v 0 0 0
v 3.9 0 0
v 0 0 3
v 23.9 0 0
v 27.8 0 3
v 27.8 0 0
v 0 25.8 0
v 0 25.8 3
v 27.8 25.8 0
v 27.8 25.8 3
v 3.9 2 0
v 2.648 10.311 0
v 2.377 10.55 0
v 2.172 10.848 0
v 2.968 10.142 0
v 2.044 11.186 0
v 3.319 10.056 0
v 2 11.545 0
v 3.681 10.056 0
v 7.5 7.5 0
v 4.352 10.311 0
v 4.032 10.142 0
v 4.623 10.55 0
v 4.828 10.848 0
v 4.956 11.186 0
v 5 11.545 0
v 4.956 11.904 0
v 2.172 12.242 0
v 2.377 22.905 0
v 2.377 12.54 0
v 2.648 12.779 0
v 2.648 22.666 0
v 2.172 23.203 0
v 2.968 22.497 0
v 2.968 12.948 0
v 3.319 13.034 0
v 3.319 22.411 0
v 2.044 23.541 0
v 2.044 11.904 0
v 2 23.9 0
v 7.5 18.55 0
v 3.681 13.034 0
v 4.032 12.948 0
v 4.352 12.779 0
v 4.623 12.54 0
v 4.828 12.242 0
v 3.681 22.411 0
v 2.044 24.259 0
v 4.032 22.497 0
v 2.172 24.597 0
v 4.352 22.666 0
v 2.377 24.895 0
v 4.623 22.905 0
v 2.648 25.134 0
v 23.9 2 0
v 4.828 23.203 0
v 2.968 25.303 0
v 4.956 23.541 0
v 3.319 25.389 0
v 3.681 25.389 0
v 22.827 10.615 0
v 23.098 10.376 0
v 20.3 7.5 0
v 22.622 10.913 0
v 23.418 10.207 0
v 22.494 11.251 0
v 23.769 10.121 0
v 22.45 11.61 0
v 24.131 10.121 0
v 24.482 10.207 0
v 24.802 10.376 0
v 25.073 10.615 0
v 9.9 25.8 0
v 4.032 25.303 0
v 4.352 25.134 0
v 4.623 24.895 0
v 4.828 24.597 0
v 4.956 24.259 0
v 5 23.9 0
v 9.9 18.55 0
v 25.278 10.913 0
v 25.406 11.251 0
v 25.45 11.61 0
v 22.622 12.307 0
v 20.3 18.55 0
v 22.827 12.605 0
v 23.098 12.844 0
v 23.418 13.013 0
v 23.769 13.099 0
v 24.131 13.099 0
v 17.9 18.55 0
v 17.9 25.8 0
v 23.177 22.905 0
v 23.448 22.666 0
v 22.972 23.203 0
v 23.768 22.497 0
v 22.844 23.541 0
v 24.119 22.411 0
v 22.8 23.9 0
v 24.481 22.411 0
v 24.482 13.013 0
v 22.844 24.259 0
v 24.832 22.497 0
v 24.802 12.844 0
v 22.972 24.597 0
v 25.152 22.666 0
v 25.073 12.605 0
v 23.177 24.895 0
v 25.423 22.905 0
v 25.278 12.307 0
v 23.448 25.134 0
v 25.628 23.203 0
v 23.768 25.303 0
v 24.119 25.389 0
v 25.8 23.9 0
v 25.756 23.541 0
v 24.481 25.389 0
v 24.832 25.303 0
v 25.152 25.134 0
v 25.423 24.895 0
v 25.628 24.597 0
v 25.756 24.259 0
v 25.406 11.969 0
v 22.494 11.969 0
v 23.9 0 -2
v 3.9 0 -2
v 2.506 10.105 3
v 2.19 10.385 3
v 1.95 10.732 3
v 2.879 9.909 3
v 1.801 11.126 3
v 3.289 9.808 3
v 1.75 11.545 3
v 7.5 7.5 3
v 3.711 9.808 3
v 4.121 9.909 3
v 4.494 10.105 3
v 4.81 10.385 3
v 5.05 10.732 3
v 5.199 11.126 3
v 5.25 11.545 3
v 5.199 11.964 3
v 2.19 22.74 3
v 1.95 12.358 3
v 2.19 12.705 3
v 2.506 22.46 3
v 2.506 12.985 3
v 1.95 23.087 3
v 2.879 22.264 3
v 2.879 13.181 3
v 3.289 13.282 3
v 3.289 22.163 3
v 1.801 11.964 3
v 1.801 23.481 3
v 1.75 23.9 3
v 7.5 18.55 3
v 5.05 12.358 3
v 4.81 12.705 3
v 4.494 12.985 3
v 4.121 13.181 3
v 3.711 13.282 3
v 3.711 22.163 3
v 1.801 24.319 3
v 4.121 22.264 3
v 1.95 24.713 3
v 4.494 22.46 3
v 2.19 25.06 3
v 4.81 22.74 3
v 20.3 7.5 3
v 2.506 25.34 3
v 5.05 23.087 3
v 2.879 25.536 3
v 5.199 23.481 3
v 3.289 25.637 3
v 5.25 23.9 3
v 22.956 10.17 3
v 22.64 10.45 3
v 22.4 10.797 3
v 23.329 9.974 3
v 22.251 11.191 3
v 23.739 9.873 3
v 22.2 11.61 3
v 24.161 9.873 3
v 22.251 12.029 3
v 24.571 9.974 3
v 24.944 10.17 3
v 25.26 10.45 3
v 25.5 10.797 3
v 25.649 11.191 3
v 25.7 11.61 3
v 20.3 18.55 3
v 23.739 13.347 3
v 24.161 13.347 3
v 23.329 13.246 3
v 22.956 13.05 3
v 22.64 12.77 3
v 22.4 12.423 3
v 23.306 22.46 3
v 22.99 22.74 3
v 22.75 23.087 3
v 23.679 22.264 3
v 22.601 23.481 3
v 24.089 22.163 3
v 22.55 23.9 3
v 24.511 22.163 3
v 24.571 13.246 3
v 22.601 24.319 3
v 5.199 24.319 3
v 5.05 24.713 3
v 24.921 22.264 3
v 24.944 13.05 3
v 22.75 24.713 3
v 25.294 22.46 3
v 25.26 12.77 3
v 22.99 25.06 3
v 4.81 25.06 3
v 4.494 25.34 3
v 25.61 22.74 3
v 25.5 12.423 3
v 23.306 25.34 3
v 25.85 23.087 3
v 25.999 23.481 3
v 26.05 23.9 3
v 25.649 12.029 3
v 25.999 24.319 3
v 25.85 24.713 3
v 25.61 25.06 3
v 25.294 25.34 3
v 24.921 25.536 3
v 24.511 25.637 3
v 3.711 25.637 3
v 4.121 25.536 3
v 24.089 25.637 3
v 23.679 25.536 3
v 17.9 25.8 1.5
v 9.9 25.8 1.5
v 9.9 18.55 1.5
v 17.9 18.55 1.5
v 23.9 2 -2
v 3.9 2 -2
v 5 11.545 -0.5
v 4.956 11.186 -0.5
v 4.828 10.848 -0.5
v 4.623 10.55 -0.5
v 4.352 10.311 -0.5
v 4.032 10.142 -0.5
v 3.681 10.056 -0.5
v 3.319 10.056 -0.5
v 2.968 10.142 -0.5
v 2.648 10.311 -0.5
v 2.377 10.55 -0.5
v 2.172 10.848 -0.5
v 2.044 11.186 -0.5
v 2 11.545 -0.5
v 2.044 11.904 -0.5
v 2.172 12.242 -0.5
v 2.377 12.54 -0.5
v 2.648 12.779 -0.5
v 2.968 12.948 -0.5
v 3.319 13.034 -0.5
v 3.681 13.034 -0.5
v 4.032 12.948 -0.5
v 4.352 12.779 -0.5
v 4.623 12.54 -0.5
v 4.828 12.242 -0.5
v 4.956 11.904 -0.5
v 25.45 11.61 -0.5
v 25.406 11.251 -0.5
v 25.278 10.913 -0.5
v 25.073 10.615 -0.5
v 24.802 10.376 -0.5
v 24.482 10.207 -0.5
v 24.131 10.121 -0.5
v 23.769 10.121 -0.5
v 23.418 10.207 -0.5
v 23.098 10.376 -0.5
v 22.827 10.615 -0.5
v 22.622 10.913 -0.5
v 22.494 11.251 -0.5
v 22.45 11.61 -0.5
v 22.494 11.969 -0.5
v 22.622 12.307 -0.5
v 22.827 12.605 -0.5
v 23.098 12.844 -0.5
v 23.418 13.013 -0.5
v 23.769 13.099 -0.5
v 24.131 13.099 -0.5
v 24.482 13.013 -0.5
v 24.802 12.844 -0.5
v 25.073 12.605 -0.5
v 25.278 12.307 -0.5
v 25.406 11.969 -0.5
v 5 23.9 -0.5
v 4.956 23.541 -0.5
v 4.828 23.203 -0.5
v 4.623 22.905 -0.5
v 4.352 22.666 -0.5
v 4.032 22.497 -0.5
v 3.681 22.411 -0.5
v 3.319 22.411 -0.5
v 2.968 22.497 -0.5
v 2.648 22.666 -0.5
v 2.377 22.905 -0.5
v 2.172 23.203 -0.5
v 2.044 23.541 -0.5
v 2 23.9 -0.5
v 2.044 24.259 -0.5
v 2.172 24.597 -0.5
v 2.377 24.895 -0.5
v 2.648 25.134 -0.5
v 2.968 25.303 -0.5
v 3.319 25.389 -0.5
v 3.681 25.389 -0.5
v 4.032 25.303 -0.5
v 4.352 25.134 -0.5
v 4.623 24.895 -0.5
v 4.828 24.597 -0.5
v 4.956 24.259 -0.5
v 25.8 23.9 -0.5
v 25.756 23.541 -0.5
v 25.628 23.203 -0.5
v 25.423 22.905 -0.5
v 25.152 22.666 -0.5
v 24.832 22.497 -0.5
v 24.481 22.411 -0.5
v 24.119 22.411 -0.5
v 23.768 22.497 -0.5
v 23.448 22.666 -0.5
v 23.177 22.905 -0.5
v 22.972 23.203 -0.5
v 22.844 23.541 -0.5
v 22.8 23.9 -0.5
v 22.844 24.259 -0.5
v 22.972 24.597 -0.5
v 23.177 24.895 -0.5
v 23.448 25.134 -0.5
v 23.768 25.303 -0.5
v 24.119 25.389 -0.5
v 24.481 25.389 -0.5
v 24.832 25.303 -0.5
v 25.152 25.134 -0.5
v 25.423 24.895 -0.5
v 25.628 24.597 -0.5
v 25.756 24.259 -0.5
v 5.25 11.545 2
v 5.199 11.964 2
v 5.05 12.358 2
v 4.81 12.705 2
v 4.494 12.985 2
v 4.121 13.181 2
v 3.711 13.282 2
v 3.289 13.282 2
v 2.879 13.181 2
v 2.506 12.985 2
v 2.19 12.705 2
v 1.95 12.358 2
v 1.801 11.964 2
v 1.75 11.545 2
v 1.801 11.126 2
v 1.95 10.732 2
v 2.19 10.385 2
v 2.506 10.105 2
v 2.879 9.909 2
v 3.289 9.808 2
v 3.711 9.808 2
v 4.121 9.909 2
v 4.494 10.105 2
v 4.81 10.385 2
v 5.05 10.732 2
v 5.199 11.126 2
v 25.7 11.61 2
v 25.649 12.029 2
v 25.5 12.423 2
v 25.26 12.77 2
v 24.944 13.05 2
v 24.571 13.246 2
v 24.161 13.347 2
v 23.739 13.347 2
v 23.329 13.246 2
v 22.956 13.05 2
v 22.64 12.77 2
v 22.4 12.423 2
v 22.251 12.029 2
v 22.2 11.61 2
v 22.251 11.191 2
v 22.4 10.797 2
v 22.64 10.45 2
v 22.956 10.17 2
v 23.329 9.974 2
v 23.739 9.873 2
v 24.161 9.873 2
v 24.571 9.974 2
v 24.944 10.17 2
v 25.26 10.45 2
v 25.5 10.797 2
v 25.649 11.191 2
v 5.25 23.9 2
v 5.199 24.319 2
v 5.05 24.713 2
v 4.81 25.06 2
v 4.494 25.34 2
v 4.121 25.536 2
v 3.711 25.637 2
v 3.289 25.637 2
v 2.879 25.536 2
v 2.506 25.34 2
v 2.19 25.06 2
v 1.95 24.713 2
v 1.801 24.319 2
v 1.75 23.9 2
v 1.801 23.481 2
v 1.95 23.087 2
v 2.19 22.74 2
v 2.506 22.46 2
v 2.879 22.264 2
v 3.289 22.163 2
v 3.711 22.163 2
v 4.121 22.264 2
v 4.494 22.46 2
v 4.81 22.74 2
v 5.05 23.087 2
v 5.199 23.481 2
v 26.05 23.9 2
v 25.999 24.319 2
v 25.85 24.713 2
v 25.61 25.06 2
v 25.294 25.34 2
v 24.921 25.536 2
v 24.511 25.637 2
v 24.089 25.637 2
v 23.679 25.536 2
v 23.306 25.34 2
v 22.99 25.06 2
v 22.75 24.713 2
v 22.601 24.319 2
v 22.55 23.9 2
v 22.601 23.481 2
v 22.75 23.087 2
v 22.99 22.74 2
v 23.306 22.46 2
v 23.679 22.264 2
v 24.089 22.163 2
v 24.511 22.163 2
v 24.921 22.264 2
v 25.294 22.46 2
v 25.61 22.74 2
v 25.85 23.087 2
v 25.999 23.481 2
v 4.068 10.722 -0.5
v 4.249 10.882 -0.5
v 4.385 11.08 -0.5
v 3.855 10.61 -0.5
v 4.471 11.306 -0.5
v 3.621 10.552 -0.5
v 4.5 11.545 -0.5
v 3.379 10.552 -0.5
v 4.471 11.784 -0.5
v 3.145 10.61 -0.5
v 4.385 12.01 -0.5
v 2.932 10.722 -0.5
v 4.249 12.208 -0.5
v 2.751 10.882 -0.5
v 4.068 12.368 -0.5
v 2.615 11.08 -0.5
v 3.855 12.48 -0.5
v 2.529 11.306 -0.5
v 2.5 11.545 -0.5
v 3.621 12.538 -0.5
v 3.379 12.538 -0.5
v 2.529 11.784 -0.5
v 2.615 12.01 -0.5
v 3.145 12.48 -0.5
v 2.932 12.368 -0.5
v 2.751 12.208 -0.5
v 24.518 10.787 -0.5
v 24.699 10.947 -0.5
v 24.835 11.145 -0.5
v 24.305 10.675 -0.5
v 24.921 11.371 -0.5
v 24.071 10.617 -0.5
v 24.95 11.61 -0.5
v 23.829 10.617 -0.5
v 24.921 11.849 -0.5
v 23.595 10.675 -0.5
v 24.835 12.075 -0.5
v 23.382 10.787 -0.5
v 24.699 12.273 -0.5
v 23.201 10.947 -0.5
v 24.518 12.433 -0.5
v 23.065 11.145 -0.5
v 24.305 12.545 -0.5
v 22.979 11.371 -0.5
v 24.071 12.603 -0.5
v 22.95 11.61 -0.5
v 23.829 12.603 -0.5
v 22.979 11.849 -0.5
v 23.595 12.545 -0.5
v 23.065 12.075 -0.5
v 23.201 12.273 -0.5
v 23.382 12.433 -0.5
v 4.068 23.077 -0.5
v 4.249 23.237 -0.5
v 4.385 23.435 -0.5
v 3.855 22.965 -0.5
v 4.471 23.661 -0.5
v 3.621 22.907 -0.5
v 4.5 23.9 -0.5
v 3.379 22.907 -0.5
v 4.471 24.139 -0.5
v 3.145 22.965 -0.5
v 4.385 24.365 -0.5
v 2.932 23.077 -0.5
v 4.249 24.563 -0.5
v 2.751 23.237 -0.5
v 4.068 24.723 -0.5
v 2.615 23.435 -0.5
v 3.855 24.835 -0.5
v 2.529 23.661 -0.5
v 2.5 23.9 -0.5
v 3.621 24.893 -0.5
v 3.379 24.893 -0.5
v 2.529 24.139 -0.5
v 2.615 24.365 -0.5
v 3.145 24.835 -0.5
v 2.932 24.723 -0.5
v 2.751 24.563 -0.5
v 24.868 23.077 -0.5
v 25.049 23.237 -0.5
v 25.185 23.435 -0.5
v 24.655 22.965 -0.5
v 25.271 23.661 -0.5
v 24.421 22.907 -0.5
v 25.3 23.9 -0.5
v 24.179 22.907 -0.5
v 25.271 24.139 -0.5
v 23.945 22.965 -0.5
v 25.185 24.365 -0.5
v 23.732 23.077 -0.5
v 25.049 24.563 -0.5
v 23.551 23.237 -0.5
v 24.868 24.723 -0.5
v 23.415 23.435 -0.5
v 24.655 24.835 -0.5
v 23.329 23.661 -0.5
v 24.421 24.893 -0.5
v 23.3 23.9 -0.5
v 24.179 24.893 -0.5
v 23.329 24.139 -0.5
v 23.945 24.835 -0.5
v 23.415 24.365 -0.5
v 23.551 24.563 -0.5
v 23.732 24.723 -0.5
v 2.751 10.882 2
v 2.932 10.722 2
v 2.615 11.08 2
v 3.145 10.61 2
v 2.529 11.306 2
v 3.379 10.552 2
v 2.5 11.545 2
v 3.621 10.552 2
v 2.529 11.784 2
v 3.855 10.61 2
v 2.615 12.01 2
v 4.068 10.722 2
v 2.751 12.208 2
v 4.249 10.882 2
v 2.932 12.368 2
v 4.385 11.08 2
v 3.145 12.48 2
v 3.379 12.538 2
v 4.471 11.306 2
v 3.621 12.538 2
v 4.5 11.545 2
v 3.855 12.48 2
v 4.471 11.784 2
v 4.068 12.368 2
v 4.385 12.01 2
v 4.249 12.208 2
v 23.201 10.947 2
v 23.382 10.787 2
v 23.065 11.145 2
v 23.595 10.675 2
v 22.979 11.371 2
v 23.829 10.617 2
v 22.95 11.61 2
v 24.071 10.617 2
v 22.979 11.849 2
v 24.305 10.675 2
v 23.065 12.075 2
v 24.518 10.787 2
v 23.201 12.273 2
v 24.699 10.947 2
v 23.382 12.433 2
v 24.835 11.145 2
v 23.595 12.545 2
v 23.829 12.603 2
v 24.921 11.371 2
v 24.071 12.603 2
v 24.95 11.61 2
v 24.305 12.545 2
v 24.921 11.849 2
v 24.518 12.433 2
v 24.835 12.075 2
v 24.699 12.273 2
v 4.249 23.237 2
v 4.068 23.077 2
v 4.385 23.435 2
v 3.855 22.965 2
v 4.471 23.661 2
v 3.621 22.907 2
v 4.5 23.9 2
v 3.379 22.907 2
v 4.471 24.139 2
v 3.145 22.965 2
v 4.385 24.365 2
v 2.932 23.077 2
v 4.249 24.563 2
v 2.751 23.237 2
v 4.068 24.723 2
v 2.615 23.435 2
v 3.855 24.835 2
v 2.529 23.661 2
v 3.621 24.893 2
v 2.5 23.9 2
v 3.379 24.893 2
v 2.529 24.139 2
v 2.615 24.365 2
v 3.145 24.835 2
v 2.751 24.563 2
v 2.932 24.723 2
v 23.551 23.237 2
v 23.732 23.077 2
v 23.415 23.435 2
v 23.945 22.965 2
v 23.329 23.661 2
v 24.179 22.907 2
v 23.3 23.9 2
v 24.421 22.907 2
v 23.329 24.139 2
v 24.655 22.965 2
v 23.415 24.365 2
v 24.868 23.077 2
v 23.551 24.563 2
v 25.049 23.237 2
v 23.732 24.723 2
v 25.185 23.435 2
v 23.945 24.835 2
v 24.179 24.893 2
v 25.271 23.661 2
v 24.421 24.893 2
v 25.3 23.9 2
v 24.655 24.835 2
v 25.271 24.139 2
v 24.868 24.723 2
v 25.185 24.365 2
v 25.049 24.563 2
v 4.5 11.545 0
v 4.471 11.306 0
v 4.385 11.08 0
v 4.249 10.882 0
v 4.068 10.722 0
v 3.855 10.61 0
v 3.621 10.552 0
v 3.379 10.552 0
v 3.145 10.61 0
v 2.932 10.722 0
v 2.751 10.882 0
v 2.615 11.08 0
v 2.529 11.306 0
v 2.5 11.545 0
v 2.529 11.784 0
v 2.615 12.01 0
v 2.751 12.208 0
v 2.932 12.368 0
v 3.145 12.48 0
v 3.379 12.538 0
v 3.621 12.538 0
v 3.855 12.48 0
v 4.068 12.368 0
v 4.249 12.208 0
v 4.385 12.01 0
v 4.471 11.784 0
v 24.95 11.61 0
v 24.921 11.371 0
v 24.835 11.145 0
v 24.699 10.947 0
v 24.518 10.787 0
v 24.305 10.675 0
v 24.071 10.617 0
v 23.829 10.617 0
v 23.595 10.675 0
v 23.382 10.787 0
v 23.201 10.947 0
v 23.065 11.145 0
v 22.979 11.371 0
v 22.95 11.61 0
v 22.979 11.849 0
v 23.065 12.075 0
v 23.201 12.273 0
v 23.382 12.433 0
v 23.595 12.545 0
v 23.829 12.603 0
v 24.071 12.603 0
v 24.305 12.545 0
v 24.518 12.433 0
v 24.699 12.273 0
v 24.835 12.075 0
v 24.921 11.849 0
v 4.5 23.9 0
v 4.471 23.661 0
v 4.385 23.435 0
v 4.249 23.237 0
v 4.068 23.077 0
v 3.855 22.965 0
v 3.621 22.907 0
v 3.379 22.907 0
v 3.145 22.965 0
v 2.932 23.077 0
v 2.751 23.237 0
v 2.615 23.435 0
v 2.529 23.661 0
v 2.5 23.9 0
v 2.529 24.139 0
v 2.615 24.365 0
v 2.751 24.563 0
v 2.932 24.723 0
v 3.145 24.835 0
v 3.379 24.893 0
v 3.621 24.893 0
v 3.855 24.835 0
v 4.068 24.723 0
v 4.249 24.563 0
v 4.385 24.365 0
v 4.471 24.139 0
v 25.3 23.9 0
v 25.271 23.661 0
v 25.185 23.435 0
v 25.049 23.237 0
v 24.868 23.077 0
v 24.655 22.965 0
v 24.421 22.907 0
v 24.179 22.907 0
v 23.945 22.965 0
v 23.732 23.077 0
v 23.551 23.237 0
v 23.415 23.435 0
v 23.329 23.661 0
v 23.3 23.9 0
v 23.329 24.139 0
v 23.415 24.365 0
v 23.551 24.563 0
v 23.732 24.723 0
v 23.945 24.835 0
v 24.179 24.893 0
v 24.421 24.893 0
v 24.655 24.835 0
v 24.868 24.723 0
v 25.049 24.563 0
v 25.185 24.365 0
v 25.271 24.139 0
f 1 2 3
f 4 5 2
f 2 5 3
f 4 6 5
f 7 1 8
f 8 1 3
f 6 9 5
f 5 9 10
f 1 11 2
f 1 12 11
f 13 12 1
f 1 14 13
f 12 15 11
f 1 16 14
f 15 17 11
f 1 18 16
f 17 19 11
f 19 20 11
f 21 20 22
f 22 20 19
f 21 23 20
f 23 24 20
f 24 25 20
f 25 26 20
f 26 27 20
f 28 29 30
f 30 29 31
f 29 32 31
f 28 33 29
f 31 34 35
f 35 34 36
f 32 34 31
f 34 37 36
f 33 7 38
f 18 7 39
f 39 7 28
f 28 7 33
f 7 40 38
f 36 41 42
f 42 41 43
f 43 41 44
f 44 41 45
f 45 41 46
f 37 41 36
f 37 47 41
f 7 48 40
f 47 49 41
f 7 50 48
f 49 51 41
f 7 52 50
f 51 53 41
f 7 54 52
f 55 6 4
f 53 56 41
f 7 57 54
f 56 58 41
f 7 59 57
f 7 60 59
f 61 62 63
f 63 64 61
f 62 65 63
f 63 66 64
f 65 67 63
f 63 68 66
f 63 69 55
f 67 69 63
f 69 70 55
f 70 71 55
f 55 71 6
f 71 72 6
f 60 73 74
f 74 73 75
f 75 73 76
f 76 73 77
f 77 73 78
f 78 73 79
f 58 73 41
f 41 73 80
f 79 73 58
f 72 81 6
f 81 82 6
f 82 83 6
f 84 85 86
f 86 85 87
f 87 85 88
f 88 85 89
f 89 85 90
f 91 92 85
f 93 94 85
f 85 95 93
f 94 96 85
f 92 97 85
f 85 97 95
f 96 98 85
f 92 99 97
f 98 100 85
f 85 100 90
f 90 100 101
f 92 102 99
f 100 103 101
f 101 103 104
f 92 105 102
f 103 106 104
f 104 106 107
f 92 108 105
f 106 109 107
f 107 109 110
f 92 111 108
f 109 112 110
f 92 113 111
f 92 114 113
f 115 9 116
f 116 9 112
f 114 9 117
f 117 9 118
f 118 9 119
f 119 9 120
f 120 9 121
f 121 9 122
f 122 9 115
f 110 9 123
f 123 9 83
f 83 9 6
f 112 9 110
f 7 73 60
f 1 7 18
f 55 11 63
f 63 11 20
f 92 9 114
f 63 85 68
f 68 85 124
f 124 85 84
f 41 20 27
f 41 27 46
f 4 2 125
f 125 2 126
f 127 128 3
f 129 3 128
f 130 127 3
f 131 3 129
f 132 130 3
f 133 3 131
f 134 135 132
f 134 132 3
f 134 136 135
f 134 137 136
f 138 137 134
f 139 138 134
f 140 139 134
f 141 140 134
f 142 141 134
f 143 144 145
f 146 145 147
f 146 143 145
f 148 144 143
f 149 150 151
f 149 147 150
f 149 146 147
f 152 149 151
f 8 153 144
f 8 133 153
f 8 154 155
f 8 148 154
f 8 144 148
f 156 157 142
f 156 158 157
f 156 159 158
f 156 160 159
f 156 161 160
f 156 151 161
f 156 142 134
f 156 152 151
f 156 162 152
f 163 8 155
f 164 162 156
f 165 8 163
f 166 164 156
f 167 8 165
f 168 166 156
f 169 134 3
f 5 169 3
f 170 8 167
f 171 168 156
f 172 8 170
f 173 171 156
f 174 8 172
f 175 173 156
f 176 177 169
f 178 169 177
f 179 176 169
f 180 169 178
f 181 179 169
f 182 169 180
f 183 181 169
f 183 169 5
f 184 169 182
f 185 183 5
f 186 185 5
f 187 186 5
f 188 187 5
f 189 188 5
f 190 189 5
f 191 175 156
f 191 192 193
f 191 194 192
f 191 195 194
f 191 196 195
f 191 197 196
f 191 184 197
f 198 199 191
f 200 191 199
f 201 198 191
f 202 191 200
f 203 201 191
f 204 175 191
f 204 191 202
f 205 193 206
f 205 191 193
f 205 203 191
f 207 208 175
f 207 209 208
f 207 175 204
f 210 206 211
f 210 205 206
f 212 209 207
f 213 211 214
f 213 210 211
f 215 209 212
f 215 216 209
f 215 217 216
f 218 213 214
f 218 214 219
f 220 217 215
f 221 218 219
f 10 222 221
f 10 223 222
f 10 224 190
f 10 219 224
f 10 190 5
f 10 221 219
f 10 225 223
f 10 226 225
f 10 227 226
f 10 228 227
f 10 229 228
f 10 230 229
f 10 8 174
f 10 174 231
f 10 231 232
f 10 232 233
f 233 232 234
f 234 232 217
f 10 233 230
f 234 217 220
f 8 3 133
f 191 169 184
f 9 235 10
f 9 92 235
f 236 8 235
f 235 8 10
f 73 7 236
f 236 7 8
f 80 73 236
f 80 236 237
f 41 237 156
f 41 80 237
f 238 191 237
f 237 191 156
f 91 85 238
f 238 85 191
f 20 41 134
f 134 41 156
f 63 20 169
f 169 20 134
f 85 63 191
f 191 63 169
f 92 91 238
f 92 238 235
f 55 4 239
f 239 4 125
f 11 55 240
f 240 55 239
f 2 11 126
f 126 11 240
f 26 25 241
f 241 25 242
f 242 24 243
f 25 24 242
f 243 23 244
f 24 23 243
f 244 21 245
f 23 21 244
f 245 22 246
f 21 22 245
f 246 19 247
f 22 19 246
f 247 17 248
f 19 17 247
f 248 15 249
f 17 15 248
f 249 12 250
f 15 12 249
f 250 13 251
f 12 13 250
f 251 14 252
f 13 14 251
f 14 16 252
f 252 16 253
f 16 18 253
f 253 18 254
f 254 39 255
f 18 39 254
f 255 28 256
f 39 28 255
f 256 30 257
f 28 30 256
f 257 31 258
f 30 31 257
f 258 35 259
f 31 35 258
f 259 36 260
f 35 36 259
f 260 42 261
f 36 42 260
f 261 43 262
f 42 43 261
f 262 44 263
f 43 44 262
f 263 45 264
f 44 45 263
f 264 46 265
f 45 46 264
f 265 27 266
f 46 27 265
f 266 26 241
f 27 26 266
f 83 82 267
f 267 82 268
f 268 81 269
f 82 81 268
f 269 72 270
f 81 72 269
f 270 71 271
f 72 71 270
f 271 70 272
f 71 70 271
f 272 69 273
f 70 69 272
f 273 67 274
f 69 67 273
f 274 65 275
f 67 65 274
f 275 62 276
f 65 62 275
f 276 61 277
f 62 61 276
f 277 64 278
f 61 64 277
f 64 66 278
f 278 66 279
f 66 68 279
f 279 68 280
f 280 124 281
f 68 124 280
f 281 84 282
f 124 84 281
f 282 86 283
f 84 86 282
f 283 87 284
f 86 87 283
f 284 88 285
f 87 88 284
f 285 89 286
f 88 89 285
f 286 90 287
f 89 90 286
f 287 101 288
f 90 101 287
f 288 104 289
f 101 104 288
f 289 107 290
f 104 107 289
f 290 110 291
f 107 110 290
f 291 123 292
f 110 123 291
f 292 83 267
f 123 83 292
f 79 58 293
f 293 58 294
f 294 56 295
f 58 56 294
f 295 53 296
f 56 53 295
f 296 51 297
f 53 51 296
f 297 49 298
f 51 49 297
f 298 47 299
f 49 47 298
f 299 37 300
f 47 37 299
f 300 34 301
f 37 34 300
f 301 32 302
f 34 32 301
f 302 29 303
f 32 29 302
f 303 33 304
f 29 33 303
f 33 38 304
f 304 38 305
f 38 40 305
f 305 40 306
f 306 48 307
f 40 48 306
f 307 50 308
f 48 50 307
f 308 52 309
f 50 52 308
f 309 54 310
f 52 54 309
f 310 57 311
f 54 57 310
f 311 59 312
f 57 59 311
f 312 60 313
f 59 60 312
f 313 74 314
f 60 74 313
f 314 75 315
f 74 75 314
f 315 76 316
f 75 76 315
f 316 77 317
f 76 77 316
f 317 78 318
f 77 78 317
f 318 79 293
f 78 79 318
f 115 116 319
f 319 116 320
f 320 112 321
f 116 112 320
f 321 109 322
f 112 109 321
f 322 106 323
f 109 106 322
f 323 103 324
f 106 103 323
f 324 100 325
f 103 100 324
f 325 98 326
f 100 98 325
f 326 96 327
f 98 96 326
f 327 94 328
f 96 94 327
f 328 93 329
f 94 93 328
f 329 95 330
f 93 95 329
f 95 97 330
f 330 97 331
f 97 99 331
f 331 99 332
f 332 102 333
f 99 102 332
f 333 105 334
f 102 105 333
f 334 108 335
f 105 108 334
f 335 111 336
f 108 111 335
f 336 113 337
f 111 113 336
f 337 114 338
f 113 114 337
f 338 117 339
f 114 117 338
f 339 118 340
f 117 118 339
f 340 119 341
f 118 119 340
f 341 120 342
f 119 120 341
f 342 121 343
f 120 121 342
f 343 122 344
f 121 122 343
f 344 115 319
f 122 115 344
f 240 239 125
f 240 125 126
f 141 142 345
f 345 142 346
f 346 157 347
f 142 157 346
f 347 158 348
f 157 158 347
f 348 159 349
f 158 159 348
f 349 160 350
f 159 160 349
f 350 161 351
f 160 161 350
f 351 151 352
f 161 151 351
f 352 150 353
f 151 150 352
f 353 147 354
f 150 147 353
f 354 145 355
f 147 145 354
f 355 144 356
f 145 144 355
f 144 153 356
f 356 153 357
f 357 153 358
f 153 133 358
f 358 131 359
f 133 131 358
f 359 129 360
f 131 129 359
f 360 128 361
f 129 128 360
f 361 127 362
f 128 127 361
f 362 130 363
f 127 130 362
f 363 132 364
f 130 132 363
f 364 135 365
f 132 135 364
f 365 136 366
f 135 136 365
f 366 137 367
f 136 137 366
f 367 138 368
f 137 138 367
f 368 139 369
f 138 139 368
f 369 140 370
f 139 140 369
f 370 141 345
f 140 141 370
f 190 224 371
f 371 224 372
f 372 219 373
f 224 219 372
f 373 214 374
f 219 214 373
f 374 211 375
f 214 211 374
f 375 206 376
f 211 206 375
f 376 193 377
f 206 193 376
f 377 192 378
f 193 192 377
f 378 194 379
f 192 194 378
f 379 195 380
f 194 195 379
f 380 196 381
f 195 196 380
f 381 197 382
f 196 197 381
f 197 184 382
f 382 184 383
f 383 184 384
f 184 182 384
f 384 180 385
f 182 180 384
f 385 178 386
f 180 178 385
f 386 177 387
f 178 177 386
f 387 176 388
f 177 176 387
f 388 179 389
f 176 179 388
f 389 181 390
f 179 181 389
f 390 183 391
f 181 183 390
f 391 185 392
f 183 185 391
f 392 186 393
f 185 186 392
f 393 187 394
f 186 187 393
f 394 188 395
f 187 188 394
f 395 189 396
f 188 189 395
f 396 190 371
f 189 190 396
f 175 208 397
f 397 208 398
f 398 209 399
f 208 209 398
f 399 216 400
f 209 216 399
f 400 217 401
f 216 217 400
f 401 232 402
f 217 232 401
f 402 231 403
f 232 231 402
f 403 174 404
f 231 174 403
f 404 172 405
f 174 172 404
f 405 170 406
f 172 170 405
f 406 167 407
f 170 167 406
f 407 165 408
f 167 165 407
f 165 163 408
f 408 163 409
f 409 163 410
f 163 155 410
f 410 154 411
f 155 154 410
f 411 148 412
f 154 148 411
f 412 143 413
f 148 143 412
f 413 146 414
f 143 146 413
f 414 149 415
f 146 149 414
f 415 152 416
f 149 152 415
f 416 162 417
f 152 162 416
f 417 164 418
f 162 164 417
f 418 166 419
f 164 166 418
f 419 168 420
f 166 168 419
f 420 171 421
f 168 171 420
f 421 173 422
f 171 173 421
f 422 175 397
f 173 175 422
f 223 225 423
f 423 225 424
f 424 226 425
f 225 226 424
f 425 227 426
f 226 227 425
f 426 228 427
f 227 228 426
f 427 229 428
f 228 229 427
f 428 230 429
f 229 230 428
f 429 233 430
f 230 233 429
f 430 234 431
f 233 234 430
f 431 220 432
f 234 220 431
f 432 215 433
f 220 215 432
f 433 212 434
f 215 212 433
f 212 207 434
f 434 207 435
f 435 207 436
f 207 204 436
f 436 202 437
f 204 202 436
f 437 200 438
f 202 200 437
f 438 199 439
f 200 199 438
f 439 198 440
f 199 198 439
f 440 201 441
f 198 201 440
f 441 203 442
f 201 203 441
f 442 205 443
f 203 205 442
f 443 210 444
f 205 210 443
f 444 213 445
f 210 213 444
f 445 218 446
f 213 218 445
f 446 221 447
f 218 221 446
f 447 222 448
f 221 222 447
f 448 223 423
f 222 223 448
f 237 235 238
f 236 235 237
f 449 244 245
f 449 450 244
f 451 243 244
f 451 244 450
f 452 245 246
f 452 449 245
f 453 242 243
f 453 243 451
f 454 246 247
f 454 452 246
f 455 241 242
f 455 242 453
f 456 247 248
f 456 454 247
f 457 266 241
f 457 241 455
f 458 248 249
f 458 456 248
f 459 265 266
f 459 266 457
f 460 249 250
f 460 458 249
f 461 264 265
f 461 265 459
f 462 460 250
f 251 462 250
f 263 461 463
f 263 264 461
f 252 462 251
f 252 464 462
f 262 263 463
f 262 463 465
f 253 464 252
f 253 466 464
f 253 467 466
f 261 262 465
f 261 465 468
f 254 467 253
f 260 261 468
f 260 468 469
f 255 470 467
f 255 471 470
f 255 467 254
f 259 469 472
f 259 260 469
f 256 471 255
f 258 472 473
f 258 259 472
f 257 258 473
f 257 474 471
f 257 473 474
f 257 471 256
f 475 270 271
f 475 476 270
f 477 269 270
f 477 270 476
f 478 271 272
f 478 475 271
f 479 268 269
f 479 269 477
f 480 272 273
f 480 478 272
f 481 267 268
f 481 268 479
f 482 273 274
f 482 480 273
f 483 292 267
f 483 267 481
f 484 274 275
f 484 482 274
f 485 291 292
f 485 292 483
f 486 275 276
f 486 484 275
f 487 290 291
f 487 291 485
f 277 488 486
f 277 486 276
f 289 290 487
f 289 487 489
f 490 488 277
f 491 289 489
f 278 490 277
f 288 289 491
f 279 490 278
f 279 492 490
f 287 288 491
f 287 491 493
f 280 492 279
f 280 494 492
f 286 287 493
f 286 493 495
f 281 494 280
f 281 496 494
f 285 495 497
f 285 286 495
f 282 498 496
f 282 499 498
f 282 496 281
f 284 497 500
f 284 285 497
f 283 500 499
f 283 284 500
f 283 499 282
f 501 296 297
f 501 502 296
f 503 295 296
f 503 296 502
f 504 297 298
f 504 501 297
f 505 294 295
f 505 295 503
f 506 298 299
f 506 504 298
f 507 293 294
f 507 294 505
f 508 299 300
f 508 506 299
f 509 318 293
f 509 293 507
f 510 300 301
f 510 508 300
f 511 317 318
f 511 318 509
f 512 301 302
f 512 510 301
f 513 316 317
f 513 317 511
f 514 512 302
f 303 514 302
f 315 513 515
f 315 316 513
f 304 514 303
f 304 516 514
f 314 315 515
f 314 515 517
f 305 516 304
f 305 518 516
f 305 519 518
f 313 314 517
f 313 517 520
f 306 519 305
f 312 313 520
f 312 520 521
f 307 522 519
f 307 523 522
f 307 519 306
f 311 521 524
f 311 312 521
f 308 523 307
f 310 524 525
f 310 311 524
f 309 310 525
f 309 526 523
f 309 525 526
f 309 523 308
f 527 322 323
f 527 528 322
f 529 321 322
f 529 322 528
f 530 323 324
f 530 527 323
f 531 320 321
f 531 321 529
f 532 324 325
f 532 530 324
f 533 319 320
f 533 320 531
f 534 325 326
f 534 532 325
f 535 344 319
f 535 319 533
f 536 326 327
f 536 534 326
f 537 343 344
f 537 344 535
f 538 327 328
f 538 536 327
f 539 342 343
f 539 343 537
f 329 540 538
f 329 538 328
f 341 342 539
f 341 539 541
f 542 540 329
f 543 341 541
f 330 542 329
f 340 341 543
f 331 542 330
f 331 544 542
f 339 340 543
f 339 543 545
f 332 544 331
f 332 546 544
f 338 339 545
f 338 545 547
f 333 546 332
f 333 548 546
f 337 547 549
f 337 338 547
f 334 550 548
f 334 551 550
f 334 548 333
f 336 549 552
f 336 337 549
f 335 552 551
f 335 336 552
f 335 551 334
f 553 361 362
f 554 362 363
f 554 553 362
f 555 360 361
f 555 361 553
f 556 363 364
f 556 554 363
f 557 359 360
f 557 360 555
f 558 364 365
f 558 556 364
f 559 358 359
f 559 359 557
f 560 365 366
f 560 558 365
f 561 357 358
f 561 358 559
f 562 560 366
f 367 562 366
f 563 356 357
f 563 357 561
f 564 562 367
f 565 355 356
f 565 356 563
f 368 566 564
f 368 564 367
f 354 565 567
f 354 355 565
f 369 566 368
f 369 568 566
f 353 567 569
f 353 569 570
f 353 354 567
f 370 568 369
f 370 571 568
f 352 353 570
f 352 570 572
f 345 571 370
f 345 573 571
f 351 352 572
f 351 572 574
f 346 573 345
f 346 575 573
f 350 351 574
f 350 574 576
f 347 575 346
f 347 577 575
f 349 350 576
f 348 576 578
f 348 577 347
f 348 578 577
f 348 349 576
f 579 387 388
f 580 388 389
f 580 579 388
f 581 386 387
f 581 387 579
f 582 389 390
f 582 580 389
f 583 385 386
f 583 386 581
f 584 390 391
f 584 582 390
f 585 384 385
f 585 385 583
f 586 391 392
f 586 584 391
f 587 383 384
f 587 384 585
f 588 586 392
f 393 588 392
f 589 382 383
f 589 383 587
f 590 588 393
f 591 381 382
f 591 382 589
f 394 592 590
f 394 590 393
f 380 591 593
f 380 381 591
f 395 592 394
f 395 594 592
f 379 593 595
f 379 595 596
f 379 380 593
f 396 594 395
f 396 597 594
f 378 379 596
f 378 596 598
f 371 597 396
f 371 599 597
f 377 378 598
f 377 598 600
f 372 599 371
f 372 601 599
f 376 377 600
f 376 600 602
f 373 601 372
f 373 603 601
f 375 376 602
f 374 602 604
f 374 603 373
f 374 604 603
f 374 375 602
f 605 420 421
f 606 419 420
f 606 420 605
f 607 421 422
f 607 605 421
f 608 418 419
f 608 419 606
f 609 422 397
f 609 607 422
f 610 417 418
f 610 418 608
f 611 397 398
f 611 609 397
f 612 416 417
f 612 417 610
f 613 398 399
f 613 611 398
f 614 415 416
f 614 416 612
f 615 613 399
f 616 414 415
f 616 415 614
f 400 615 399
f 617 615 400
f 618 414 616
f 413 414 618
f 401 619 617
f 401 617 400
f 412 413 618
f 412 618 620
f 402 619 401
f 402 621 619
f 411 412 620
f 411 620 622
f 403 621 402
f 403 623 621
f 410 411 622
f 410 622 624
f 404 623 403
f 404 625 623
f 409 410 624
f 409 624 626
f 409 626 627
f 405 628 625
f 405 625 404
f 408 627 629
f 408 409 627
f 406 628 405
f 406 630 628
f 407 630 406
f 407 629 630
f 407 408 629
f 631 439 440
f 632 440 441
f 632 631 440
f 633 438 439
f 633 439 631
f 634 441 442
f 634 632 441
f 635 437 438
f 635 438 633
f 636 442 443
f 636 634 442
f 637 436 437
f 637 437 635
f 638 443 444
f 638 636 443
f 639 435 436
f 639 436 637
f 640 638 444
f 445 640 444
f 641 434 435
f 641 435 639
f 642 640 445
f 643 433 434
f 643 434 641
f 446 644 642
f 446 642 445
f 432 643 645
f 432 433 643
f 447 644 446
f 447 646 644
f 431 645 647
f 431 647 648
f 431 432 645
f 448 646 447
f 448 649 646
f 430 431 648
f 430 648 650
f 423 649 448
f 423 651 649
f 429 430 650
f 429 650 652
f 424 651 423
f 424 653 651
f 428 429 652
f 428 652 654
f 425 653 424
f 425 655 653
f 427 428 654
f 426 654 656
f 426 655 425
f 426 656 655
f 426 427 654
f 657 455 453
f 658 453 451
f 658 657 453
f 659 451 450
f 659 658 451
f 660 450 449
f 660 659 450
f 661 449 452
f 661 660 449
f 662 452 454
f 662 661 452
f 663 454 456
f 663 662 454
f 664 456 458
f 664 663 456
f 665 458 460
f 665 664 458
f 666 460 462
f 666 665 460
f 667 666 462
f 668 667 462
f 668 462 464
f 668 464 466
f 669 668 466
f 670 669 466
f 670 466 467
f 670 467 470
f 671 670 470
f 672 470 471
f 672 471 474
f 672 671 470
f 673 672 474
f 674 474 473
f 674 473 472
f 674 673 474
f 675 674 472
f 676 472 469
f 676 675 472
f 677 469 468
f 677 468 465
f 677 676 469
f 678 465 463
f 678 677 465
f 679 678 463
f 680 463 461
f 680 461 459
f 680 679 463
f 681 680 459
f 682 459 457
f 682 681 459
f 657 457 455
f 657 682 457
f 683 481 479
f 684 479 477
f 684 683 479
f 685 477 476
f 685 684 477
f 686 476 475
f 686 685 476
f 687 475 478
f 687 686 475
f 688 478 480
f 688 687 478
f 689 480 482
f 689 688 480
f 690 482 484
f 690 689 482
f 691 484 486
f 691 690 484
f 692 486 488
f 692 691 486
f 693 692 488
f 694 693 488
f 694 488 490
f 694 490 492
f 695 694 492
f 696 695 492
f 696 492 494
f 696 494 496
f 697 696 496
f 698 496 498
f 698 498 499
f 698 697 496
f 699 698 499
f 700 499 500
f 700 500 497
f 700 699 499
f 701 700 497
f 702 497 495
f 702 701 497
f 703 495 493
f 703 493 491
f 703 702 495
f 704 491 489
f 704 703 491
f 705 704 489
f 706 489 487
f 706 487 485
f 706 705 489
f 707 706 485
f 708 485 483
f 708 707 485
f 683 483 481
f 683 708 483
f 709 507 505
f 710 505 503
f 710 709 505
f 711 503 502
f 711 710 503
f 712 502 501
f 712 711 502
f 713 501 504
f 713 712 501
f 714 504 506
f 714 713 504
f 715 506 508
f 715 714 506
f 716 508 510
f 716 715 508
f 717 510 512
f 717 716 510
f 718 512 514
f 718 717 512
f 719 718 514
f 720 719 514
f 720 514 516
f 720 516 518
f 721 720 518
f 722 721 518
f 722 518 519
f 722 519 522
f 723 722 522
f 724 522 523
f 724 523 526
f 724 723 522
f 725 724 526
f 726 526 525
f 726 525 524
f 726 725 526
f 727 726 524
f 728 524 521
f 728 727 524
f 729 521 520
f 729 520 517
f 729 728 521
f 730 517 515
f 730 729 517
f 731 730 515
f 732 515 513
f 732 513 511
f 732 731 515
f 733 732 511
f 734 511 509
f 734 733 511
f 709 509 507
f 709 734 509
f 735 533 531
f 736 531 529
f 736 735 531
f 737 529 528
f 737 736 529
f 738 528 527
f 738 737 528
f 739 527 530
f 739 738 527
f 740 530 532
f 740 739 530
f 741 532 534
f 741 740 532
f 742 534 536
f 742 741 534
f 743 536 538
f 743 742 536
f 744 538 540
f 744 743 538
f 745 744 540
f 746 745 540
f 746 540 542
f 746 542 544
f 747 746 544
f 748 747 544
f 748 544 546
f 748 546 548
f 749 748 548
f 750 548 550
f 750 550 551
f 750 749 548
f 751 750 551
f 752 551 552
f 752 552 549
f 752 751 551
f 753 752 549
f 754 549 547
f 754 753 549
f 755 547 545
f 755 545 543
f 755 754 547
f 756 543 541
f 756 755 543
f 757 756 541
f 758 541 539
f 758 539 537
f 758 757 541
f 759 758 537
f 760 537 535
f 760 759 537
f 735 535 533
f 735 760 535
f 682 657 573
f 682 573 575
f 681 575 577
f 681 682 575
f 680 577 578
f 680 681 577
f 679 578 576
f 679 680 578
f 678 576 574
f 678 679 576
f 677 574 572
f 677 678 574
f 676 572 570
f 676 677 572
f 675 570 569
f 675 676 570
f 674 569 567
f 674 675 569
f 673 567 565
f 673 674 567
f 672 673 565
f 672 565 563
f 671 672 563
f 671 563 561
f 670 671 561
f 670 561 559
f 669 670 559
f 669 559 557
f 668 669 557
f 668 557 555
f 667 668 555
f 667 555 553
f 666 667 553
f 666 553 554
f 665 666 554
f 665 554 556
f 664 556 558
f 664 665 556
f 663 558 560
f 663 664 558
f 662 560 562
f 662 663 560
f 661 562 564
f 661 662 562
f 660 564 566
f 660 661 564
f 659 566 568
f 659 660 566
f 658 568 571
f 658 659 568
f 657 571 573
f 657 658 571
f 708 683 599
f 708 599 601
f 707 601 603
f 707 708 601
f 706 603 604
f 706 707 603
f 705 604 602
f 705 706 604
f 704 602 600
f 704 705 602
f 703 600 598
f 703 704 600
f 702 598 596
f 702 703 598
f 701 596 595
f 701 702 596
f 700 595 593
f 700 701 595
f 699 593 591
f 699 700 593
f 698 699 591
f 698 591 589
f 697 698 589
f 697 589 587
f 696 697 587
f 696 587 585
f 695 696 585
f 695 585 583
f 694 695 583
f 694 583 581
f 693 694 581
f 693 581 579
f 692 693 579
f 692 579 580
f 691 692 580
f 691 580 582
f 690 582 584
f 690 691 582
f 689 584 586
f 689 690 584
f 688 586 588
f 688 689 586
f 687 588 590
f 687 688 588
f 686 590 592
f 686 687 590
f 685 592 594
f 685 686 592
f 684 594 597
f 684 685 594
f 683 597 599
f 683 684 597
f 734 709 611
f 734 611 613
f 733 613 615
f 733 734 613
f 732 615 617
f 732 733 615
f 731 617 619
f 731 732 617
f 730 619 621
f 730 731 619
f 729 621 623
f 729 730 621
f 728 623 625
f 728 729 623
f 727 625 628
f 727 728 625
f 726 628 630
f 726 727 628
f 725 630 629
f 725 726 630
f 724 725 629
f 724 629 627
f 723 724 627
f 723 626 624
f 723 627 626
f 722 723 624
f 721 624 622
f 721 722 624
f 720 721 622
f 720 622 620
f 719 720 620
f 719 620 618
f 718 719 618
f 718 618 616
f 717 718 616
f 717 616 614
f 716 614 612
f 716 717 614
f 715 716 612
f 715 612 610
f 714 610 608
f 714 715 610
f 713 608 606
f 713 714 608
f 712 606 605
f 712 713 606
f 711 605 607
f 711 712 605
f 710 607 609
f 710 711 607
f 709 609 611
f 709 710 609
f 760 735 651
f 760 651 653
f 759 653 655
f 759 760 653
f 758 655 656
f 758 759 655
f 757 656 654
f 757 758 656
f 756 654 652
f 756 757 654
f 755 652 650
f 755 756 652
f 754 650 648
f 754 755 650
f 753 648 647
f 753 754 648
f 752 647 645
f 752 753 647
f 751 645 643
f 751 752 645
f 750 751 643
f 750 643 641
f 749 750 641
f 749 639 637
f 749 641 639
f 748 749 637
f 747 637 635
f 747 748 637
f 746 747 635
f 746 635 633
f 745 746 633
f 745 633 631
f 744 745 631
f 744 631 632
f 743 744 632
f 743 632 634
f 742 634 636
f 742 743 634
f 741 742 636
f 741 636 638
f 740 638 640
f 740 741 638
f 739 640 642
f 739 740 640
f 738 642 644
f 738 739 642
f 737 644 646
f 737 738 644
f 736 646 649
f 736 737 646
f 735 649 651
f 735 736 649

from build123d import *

# Parameters (mm, degrees)
SKETCH_W        = 27.8
SKETCH_H        = 25.8
SKETCH_R        = 1
SKETCH_W_2      = 12.8
SKETCH_H_2      = 11.05
PAD_DEPTH       = 3
SKETCH002_W     = 20
SKETCH002_H     = 2
PAD001_DEPTH    = 2
SKETCH003_R     = 1.5
SKETCH003_R_2   = 1
PAD002_DEPTH    = 0.5
SKETCH005_R     = 1.75
POCKET_DEPTH    = 1
SKETCH006_W     = 8
SKETCH006_H     = 7.25
POCKET001_DEPTH = 1.5


with BuildPart() as part:
    # Sketch → Pad (new body)
    with BuildSketch(Plane.XY):
        with Locations((13.9, 12.9)):
            Rectangle(SKETCH_W, SKETCH_H)
        with Locations((3.5, 23.9)):
            Circle(SKETCH_R, mode=Mode.SUBTRACT)
        with Locations((24.3, 23.9)):
            Circle(SKETCH_R, mode=Mode.SUBTRACT)
        with Locations((23.95, 11.61)):
            Circle(SKETCH_R, mode=Mode.SUBTRACT)
        with Locations((3.5, 11.545)):
            Circle(SKETCH_R, mode=Mode.SUBTRACT)
        with Locations((13.9, 13.025)):
            Rectangle(SKETCH_W_2, SKETCH_H_2, mode=Mode.SUBTRACT)
    extrude(amount=PAD_DEPTH)

    # Sketch002 → Pad001 (join)
    with BuildSketch(Plane.XY):
        with Locations((13.9, 1)):
            Rectangle(SKETCH002_W, SKETCH002_H)
    extrude(amount=-PAD001_DEPTH)

    # Sketch003 (on Face13 of Pad) → Pad002 (join)
    with BuildSketch(Plane(origin=(0, 0, 0), x_dir=(1, 0, 0), z_dir=(0, 0, -1))):
        with Locations((24.3, -23.9)):
            Circle(SKETCH003_R)
        with Locations((24.3, -23.9)):
            Circle(SKETCH003_R_2, mode=Mode.SUBTRACT)
        with Locations((3.5, -23.9)):
            Circle(SKETCH003_R)
        with Locations((3.5, -23.9)):
            Circle(SKETCH003_R_2, mode=Mode.SUBTRACT)
        with Locations((23.95, -11.61)):
            Circle(SKETCH003_R)
        with Locations((23.95, -11.61)):
            Circle(SKETCH003_R_2, mode=Mode.SUBTRACT)
        with Locations((3.5, -11.545)):
            Circle(SKETCH003_R)
        with Locations((3.5, -11.545)):
            Circle(SKETCH003_R_2, mode=Mode.SUBTRACT)
    extrude(amount=PAD002_DEPTH)

    # Sketch005 (on Face6 of Pad002) → Pocket (cut)
    with BuildSketch(Plane.XY.offset(3)):
        with Locations((23.95, 11.61)):
            Circle(SKETCH005_R)
        with Locations((3.5, 11.545)):
            Circle(SKETCH005_R)
        with Locations((3.5, 23.9)):
            Circle(SKETCH005_R)
        with Locations((24.3, 23.9)):
            Circle(SKETCH005_R)
    extrude(amount=-POCKET_DEPTH, mode=Mode.SUBTRACT)

    # Sketch006 (on Face4 of Pad001) → Pocket001 (cut)
    with BuildSketch(Plane(origin=(0, 0, 0), x_dir=(1, 0, 0), z_dir=(0, 0, -1))):
        with Locations((13.9, -22.175)):
            Rectangle(SKETCH006_W, SKETCH006_H)
    extrude(amount=-POCKET001_DEPTH, mode=Mode.SUBTRACT)


solid = part.part
